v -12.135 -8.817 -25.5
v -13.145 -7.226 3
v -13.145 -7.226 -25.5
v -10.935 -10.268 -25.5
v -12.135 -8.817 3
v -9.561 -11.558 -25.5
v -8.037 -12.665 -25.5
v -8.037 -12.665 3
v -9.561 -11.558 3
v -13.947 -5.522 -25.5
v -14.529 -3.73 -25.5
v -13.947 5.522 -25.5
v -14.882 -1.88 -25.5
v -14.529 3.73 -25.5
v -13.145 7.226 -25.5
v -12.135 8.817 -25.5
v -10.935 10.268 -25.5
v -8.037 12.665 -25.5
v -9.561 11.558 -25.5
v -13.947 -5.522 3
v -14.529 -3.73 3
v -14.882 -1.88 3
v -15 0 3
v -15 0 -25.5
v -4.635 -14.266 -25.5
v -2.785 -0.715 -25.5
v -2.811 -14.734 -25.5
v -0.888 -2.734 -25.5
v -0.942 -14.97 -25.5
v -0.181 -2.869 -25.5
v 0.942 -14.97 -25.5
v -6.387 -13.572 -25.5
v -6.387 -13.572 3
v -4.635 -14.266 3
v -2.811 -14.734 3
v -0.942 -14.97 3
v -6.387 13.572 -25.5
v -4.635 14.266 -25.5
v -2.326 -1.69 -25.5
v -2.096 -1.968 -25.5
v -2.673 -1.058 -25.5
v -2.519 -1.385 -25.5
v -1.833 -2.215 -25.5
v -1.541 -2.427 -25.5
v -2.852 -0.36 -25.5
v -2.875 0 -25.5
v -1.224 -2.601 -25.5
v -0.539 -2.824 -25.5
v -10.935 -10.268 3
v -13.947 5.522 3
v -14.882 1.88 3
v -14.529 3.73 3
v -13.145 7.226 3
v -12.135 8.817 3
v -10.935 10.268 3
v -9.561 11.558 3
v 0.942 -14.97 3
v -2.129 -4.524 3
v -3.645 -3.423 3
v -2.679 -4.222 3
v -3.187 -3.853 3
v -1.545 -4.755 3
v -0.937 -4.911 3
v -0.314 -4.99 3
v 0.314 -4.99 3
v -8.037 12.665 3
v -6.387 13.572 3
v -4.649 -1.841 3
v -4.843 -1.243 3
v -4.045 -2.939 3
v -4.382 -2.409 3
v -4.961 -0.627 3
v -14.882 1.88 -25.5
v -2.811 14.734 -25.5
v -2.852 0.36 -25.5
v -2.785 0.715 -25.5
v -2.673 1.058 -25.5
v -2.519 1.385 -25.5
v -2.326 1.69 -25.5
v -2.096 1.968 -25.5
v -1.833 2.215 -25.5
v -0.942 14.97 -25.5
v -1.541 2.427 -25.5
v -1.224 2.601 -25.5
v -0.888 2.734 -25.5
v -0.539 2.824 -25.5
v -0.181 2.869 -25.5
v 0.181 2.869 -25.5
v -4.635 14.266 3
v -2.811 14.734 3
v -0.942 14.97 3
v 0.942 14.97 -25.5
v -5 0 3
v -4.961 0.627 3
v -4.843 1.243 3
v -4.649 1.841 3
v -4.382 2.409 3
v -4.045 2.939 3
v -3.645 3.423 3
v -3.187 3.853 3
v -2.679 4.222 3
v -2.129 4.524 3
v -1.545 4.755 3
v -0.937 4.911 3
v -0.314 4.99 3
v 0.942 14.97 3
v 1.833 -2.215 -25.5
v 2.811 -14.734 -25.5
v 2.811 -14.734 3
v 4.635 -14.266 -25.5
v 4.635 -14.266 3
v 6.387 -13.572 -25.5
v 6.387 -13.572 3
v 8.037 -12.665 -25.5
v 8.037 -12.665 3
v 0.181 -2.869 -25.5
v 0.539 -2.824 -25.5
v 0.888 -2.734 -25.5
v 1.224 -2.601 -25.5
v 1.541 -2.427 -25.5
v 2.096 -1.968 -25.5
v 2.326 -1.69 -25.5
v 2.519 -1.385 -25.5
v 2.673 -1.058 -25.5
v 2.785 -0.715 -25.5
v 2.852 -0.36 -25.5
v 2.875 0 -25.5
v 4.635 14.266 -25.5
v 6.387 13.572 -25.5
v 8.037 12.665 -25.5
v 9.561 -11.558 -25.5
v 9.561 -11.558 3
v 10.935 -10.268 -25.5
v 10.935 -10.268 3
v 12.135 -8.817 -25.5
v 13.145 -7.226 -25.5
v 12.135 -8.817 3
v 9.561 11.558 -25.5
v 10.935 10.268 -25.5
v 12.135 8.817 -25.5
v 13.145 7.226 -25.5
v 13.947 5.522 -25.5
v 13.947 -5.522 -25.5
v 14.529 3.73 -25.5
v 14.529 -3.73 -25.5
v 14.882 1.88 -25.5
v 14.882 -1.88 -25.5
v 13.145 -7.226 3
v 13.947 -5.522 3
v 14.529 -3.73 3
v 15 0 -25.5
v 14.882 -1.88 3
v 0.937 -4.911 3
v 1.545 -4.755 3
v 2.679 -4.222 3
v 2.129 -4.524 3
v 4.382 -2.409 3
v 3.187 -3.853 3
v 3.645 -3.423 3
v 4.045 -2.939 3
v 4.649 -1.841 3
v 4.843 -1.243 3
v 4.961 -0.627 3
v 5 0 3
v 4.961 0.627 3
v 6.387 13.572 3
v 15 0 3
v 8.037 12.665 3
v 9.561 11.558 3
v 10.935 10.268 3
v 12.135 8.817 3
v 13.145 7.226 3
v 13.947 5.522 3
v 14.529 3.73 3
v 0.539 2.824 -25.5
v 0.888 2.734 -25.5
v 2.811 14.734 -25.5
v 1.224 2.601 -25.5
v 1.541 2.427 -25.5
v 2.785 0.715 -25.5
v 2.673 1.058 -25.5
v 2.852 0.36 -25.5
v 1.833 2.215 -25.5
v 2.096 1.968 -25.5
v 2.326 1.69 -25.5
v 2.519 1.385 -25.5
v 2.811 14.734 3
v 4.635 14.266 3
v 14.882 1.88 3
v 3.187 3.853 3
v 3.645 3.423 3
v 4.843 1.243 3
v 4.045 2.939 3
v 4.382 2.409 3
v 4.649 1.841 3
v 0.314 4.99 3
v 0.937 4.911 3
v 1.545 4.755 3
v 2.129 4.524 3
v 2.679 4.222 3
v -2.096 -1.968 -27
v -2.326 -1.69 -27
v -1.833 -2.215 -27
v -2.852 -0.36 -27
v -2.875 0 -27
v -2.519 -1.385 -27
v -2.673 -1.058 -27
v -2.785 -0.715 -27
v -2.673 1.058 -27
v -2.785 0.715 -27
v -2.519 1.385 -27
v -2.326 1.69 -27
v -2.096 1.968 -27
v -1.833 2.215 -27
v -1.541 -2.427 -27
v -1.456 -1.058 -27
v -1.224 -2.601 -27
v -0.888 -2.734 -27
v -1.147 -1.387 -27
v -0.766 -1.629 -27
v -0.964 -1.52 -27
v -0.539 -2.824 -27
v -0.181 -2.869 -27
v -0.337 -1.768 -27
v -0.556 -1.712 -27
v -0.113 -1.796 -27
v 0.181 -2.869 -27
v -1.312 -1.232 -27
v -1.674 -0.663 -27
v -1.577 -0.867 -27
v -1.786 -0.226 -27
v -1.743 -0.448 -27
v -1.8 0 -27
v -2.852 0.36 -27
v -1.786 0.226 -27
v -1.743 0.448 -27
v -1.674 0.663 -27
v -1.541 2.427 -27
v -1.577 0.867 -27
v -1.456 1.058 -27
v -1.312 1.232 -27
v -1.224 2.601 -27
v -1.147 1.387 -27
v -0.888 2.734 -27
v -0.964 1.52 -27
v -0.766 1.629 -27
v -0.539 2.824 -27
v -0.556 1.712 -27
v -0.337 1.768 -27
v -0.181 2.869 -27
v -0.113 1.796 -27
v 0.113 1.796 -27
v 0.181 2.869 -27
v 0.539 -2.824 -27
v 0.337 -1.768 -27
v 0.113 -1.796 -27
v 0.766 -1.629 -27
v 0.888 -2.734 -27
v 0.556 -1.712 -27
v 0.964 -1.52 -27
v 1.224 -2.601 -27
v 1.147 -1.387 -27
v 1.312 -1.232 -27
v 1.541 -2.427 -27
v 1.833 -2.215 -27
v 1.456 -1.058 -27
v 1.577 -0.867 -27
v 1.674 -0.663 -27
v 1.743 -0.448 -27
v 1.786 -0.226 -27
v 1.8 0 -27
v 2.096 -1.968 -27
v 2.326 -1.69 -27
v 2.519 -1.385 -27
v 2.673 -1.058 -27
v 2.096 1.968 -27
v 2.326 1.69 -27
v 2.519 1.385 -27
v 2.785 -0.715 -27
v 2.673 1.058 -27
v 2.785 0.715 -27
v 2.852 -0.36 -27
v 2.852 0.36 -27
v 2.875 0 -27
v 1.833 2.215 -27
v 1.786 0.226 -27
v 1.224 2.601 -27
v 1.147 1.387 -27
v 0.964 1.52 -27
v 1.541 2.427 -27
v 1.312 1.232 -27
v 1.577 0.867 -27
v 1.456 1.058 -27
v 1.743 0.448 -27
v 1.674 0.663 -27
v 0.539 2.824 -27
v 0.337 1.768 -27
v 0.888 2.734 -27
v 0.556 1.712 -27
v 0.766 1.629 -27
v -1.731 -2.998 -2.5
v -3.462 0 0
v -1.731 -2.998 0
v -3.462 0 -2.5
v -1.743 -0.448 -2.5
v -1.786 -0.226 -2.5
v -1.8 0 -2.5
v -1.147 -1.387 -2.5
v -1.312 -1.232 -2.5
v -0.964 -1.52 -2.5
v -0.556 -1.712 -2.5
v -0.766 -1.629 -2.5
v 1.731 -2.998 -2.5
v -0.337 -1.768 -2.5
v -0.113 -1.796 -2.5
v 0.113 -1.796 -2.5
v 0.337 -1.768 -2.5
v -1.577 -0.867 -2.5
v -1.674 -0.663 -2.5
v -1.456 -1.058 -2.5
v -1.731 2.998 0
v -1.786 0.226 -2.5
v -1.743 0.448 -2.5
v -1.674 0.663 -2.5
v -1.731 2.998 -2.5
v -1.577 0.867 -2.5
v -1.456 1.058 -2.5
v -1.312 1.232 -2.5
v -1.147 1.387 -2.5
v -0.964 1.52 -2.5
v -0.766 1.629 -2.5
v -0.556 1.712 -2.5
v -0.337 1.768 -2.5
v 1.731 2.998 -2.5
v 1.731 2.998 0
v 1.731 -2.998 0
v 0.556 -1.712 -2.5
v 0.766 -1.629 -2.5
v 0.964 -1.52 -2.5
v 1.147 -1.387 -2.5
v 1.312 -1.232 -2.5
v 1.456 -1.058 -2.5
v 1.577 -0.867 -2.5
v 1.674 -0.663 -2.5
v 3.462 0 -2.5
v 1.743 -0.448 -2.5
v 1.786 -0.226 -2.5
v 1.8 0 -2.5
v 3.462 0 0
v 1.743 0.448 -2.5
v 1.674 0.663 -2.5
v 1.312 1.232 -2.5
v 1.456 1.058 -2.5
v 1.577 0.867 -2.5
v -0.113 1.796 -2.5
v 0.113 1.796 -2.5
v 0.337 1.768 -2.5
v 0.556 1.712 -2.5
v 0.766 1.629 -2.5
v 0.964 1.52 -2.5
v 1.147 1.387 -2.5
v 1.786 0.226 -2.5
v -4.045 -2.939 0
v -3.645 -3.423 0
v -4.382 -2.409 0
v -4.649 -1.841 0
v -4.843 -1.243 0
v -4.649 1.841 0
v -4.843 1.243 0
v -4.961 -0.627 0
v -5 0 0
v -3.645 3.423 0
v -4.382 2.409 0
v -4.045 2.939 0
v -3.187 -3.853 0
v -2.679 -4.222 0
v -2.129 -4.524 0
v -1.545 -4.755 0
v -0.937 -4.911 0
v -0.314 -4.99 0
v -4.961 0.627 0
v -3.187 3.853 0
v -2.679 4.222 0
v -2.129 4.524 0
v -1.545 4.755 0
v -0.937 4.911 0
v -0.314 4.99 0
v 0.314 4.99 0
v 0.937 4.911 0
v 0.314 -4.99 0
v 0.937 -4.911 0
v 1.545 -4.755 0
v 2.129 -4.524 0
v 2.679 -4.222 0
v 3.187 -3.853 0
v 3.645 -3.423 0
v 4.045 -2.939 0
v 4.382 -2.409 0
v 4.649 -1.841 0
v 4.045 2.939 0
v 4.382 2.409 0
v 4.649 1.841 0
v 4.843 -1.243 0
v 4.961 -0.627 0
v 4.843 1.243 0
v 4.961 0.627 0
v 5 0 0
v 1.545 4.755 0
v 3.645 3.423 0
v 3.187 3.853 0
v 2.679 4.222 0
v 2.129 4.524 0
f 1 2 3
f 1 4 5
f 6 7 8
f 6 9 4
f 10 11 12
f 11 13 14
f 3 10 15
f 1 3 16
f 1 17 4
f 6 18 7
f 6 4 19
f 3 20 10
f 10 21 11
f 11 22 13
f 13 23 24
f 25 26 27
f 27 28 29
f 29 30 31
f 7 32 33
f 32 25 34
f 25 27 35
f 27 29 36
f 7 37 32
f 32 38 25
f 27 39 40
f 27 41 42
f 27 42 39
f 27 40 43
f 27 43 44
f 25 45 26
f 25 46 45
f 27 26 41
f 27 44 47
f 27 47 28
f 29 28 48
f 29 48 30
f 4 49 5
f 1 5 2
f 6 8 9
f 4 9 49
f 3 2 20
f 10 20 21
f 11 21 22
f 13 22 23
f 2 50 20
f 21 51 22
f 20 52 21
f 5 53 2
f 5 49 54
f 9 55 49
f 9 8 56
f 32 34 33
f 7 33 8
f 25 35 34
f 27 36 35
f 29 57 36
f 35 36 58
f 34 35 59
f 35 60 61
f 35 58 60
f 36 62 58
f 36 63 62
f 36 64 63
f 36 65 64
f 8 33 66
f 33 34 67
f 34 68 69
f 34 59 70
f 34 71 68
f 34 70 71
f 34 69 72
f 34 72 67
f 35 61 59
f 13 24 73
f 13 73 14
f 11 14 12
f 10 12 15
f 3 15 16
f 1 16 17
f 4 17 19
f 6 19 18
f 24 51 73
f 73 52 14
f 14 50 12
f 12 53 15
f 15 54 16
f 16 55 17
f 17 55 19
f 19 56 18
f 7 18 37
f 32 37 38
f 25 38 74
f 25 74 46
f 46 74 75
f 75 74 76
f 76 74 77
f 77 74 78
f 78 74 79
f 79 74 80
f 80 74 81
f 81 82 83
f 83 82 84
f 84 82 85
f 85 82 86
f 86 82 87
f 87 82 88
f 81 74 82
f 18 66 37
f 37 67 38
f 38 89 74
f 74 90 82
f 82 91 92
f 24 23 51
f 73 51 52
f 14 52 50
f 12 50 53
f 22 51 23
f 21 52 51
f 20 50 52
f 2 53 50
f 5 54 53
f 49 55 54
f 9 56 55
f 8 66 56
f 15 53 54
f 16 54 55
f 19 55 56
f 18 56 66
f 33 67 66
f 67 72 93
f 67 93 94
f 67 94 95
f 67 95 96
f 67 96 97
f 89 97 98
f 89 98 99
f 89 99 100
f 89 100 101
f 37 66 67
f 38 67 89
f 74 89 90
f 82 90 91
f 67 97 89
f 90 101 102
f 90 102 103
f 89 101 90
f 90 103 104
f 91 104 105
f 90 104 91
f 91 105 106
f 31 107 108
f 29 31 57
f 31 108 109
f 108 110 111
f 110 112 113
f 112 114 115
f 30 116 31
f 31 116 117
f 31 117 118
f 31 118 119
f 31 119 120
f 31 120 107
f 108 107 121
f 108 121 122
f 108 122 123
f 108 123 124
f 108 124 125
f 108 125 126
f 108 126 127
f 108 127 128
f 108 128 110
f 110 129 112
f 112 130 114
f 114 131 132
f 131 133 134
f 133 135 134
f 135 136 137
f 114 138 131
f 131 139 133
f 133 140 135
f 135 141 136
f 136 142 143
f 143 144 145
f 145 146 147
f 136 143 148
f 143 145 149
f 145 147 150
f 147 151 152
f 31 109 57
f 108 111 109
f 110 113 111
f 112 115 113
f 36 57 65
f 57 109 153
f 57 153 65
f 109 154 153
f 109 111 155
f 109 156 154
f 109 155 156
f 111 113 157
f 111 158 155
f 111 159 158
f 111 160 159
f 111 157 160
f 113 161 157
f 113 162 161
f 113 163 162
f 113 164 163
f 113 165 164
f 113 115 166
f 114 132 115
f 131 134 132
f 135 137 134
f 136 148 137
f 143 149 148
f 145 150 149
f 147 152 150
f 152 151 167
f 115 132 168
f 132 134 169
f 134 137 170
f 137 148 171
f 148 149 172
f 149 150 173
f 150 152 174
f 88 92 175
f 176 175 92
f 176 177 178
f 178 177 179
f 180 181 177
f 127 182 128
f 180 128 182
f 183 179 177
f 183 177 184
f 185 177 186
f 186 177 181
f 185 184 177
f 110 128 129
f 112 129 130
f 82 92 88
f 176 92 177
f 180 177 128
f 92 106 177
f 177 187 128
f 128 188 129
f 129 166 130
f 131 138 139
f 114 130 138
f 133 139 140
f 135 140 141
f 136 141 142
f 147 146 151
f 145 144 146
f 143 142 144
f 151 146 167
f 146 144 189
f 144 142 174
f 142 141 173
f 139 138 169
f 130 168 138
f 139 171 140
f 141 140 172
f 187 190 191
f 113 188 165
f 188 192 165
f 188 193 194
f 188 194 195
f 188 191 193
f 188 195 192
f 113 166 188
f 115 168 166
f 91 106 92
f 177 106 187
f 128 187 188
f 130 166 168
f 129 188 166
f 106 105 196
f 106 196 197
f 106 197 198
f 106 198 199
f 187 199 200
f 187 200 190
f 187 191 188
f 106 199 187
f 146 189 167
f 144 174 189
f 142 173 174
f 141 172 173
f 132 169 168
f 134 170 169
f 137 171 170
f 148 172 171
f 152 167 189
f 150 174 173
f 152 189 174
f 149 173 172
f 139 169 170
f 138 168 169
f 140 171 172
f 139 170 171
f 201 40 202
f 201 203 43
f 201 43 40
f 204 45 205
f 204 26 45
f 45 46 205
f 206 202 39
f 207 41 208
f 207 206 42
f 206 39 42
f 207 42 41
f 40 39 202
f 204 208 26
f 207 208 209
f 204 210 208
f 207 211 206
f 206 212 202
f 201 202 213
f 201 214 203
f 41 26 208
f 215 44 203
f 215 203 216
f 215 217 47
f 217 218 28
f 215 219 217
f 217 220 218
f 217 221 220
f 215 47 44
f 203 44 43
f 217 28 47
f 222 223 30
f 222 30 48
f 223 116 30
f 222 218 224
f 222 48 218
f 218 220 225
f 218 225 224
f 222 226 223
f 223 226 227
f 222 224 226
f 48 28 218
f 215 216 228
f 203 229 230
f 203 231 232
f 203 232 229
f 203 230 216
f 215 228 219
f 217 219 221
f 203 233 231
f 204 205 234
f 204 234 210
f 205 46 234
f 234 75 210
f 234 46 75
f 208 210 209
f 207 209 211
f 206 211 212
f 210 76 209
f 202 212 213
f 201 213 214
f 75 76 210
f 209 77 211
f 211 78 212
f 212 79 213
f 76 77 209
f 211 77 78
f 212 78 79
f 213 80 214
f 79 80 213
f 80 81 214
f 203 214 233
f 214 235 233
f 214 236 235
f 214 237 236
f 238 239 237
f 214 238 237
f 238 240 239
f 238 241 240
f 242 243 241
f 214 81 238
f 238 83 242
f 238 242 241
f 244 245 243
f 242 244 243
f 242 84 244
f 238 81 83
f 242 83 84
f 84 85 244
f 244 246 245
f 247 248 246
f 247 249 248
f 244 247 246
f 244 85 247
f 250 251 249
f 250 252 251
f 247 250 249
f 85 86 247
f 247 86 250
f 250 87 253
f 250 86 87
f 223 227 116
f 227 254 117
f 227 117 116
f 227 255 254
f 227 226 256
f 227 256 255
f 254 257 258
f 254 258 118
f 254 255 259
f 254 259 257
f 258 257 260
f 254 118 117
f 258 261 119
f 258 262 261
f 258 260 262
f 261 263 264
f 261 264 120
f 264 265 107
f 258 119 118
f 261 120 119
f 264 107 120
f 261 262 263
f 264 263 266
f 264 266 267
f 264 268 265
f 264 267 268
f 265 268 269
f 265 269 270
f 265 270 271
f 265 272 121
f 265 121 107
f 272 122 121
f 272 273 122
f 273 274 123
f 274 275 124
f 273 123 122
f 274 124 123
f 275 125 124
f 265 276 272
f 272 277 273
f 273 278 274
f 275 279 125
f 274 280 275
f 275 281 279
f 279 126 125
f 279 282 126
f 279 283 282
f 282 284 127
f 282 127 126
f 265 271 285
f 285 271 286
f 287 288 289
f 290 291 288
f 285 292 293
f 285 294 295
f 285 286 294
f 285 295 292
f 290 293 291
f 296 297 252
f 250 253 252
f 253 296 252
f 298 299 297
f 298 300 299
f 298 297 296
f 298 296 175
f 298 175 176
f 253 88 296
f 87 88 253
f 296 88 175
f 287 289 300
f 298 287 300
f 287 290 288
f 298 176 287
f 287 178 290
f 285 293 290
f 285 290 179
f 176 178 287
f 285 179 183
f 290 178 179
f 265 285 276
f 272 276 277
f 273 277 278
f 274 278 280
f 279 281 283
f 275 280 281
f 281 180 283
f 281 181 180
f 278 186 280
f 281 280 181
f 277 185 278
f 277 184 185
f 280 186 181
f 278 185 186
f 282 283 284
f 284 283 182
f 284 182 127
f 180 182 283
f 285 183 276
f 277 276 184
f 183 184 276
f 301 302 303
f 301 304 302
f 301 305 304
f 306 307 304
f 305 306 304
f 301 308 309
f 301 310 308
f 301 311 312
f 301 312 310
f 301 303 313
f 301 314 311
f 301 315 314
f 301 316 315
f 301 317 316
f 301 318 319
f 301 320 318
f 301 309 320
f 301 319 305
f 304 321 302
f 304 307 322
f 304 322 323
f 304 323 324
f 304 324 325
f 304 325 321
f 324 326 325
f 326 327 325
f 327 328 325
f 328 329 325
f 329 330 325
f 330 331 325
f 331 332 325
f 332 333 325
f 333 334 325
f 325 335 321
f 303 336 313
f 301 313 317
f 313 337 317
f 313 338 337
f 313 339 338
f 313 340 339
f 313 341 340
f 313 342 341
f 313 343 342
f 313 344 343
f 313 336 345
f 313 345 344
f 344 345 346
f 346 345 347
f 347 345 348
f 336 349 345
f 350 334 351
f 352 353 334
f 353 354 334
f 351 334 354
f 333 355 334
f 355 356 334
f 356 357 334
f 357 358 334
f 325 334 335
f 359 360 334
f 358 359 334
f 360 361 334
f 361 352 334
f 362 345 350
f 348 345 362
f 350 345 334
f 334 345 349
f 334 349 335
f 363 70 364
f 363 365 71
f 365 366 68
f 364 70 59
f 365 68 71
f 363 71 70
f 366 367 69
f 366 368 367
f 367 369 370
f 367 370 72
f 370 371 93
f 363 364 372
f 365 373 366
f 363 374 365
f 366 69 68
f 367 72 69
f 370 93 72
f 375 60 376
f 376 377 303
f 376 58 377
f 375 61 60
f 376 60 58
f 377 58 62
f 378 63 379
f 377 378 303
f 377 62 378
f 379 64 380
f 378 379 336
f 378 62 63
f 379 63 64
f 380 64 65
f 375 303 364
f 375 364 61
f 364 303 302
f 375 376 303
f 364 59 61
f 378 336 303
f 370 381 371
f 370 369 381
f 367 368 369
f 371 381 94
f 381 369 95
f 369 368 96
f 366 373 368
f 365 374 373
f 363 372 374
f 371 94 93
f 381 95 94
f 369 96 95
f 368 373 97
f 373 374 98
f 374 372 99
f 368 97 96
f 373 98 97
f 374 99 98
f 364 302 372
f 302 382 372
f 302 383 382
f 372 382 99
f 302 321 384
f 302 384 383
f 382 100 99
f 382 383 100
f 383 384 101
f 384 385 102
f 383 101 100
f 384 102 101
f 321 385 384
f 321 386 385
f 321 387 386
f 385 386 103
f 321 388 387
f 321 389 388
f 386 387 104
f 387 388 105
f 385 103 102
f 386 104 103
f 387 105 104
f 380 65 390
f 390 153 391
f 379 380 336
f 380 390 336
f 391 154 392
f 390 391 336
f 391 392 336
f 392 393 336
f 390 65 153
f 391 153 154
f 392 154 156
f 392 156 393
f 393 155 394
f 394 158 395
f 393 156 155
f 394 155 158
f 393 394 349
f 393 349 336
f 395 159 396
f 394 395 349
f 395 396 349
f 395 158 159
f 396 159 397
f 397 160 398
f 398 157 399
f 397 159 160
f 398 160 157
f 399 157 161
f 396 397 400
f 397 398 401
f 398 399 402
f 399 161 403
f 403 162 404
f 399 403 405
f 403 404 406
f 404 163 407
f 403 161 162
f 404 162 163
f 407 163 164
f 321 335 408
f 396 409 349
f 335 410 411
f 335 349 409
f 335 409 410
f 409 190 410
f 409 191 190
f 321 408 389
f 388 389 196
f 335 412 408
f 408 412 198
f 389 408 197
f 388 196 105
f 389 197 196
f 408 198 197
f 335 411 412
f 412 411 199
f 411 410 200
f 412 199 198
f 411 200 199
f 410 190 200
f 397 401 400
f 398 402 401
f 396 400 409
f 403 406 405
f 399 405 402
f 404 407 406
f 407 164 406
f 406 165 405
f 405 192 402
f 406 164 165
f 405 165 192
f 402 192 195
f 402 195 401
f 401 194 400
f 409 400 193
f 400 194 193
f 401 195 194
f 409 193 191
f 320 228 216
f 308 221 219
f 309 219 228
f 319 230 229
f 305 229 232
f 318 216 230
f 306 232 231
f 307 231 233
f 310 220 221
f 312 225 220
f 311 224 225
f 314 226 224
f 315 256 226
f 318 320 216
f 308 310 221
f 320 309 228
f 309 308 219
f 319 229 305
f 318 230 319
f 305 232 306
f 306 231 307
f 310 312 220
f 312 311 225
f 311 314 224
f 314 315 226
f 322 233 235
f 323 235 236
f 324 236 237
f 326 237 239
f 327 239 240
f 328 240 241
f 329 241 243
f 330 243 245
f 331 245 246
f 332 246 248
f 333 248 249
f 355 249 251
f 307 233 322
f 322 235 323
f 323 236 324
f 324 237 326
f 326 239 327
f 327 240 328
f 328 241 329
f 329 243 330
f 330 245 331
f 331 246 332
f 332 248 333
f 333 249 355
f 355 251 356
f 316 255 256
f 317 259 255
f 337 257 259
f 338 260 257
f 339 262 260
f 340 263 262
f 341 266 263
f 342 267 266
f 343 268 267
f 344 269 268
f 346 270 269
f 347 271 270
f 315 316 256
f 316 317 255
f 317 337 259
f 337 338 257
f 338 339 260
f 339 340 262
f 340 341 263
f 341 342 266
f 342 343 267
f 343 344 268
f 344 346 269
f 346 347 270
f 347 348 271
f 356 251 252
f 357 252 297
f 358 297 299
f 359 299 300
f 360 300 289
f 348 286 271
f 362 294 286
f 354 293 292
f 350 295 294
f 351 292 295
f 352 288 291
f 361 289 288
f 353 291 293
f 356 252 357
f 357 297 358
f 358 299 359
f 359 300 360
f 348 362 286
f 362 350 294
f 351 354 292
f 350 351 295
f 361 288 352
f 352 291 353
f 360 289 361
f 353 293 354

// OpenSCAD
$fn = 50;

difference() {
	union() {
		translate(v = [0, 0, -25.5]) {
			cylinder(h = 28.5, r = 15.0);
		}
		#translate(v = [0, 0, -27.0]) {
			cylinder(h = 27, r = 2.875);
		}
	}
	union() {
		translate(v = [0, 0, 0]) {
			rotate(a = [0, 0, 0]) {
				difference() {
					union() {
						translate(v = [0, 0, -2.5]) {
							linear_extrude(height = 2.5) {
								polygon(points = [[3.4619999999999997, 0.0], [1.7310000000000003, 2.9981799479017264], [-1.7309999999999992, 2.9981799479017264], [-3.4619999999999997, 4.2397272186481365e-16], [-1.7310000000000014, -2.998179947901726], [1.7309999999999977, -2.9981799479017277]]);
							}
						}
					}
					union();
				}
			}
		}
		#cylinder(h = 3, r = 5.0);
		#translate(v = [0, 0, -100.0]) {
			cylinder(h = 200, r = 1.8);
		}
	}
}
